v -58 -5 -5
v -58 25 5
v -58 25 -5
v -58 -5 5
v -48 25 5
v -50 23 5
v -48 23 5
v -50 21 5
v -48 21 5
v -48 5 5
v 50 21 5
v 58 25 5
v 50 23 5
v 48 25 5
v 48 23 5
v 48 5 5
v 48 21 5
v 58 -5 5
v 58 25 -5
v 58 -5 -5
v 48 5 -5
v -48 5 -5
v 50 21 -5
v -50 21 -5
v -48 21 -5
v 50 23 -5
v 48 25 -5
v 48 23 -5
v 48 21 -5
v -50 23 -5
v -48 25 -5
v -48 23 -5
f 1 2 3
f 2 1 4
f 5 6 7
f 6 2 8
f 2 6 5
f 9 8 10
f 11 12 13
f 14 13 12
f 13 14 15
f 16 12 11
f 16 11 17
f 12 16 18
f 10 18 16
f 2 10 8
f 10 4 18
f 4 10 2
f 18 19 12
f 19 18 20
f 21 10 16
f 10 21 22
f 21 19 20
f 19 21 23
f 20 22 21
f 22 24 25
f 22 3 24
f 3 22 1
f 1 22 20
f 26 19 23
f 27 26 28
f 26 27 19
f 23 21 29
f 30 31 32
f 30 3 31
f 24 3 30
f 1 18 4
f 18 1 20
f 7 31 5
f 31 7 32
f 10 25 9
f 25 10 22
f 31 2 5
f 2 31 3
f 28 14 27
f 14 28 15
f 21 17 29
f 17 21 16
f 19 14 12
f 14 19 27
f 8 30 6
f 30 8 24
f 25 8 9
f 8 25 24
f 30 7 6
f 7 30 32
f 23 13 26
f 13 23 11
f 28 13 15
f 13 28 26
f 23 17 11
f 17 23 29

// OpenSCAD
difference(){
    union(){
        cube([116,10,10], center= true);
        translate([-53,10,0]){cube([10,30,10], center= true);}
        translate([ 53,10,0]){cube([10,30,10], center= true);}
    }
    union(){
        translate([-48,22,-1]){cube([4,2,14], center= true);}
        translate([ 48,22,-1]){cube([4,2,14], center= true);}
    }
}
